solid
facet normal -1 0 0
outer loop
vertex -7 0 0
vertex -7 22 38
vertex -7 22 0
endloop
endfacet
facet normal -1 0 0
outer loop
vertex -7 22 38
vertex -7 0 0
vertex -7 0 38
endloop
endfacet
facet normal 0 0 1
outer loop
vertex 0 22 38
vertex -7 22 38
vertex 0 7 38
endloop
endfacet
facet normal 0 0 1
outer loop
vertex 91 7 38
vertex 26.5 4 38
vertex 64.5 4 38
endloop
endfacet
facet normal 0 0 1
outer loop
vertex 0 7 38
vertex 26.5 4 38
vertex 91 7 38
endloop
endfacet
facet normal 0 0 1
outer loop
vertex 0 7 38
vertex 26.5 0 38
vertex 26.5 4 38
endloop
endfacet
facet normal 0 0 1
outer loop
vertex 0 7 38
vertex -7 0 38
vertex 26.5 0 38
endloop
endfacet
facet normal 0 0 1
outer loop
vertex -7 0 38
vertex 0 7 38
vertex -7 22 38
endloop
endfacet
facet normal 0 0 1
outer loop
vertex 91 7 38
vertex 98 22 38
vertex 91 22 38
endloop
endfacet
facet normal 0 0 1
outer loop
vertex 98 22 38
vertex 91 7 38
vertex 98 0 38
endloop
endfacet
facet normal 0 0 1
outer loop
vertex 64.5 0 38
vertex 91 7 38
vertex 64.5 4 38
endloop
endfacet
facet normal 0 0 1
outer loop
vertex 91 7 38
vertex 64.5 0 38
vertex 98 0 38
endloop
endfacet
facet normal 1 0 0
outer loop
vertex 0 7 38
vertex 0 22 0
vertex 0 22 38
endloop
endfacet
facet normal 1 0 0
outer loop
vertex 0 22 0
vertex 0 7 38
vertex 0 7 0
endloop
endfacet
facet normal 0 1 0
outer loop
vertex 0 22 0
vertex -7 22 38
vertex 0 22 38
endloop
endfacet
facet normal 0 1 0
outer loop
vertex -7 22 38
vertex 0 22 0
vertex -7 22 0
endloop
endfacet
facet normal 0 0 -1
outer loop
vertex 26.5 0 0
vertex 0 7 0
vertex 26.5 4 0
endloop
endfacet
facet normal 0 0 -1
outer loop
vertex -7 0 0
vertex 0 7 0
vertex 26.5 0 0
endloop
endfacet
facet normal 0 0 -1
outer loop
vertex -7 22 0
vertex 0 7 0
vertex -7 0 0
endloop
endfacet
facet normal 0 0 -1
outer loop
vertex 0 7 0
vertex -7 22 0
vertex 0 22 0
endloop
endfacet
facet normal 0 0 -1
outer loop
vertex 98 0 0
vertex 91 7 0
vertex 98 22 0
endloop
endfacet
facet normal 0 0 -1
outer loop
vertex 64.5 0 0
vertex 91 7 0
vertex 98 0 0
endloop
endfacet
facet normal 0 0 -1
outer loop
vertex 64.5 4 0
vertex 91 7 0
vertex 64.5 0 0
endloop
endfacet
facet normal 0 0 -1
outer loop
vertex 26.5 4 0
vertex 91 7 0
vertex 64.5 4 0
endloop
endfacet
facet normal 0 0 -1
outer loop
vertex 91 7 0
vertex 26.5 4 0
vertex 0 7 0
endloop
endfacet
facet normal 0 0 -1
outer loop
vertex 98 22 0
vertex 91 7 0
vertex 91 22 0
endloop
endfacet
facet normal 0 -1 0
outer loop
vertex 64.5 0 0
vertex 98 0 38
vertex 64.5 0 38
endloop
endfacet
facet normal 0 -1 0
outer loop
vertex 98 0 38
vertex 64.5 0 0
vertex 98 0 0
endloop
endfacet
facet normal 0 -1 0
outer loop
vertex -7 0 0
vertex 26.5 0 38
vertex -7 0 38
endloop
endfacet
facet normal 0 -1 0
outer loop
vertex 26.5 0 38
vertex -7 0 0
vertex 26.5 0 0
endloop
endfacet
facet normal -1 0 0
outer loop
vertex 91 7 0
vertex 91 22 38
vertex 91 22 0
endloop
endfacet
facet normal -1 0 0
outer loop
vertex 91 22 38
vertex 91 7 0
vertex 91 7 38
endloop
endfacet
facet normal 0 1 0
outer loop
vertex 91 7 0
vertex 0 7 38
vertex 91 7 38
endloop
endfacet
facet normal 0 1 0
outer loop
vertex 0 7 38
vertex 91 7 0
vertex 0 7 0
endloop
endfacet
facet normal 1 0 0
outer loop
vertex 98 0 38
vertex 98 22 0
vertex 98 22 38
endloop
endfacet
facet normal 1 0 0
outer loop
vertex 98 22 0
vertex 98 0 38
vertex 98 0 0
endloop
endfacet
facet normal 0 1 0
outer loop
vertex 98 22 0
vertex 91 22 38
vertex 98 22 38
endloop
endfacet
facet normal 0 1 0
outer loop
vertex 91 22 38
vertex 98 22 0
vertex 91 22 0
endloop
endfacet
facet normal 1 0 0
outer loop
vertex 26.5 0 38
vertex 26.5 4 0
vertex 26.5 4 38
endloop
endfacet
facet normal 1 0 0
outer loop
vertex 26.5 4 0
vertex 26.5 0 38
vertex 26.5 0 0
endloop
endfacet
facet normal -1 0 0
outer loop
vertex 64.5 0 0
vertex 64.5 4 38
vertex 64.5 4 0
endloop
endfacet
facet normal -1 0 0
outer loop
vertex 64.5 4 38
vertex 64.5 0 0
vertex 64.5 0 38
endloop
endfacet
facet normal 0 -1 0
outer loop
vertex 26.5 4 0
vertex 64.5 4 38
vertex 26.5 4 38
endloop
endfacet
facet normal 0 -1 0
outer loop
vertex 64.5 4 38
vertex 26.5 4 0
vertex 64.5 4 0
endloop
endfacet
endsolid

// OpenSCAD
// The width of the wall or post that the support will be pressed against.
wall_width = 89;

// The width of the piece of the gate that will be pressed against the support.
gate_bar_diameter = 34;

// The distance from the end of the support that the inset section should be. Leave 0 for a centered inset.
inset_offset=0;

module baby_gate_support(wall_width=0, gate_bar_diameter=0, inset_offset=0) {
    support_thickness = 7;
    inset_thickness = 3;
    support_height = gate_bar_diameter + 4;
    gate_support_indent_width = gate_bar_diameter + 4;
    clip_length = 15;
    
    difference() {
        union() {
            translate([-support_thickness, 0, 0]) cube([support_thickness, clip_length + support_thickness, support_height ]);
            cube([wall_width+2, support_thickness, support_height ]);
            translate([wall_width+2, 0, 0]) cube([support_thickness, clip_length + support_thickness, support_height ]);
        }
        
        if (inset_offset == 0) {
            translate([(wall_width + 2 - gate_support_indent_width) / 2, 0, 0]) cube([gate_support_indent_width, support_thickness - inset_thickness, support_height]);
        } else {
            translate([inset_offset+1, 0, 0]) cube([gate_support_indent_width, support_thickness - inset_thickness, support_height]);
        }
    }
}

baby_gate_support(wall_width=wall_width, gate_bar_diameter=gate_bar_diameter, inset_offset=inset_offset);
